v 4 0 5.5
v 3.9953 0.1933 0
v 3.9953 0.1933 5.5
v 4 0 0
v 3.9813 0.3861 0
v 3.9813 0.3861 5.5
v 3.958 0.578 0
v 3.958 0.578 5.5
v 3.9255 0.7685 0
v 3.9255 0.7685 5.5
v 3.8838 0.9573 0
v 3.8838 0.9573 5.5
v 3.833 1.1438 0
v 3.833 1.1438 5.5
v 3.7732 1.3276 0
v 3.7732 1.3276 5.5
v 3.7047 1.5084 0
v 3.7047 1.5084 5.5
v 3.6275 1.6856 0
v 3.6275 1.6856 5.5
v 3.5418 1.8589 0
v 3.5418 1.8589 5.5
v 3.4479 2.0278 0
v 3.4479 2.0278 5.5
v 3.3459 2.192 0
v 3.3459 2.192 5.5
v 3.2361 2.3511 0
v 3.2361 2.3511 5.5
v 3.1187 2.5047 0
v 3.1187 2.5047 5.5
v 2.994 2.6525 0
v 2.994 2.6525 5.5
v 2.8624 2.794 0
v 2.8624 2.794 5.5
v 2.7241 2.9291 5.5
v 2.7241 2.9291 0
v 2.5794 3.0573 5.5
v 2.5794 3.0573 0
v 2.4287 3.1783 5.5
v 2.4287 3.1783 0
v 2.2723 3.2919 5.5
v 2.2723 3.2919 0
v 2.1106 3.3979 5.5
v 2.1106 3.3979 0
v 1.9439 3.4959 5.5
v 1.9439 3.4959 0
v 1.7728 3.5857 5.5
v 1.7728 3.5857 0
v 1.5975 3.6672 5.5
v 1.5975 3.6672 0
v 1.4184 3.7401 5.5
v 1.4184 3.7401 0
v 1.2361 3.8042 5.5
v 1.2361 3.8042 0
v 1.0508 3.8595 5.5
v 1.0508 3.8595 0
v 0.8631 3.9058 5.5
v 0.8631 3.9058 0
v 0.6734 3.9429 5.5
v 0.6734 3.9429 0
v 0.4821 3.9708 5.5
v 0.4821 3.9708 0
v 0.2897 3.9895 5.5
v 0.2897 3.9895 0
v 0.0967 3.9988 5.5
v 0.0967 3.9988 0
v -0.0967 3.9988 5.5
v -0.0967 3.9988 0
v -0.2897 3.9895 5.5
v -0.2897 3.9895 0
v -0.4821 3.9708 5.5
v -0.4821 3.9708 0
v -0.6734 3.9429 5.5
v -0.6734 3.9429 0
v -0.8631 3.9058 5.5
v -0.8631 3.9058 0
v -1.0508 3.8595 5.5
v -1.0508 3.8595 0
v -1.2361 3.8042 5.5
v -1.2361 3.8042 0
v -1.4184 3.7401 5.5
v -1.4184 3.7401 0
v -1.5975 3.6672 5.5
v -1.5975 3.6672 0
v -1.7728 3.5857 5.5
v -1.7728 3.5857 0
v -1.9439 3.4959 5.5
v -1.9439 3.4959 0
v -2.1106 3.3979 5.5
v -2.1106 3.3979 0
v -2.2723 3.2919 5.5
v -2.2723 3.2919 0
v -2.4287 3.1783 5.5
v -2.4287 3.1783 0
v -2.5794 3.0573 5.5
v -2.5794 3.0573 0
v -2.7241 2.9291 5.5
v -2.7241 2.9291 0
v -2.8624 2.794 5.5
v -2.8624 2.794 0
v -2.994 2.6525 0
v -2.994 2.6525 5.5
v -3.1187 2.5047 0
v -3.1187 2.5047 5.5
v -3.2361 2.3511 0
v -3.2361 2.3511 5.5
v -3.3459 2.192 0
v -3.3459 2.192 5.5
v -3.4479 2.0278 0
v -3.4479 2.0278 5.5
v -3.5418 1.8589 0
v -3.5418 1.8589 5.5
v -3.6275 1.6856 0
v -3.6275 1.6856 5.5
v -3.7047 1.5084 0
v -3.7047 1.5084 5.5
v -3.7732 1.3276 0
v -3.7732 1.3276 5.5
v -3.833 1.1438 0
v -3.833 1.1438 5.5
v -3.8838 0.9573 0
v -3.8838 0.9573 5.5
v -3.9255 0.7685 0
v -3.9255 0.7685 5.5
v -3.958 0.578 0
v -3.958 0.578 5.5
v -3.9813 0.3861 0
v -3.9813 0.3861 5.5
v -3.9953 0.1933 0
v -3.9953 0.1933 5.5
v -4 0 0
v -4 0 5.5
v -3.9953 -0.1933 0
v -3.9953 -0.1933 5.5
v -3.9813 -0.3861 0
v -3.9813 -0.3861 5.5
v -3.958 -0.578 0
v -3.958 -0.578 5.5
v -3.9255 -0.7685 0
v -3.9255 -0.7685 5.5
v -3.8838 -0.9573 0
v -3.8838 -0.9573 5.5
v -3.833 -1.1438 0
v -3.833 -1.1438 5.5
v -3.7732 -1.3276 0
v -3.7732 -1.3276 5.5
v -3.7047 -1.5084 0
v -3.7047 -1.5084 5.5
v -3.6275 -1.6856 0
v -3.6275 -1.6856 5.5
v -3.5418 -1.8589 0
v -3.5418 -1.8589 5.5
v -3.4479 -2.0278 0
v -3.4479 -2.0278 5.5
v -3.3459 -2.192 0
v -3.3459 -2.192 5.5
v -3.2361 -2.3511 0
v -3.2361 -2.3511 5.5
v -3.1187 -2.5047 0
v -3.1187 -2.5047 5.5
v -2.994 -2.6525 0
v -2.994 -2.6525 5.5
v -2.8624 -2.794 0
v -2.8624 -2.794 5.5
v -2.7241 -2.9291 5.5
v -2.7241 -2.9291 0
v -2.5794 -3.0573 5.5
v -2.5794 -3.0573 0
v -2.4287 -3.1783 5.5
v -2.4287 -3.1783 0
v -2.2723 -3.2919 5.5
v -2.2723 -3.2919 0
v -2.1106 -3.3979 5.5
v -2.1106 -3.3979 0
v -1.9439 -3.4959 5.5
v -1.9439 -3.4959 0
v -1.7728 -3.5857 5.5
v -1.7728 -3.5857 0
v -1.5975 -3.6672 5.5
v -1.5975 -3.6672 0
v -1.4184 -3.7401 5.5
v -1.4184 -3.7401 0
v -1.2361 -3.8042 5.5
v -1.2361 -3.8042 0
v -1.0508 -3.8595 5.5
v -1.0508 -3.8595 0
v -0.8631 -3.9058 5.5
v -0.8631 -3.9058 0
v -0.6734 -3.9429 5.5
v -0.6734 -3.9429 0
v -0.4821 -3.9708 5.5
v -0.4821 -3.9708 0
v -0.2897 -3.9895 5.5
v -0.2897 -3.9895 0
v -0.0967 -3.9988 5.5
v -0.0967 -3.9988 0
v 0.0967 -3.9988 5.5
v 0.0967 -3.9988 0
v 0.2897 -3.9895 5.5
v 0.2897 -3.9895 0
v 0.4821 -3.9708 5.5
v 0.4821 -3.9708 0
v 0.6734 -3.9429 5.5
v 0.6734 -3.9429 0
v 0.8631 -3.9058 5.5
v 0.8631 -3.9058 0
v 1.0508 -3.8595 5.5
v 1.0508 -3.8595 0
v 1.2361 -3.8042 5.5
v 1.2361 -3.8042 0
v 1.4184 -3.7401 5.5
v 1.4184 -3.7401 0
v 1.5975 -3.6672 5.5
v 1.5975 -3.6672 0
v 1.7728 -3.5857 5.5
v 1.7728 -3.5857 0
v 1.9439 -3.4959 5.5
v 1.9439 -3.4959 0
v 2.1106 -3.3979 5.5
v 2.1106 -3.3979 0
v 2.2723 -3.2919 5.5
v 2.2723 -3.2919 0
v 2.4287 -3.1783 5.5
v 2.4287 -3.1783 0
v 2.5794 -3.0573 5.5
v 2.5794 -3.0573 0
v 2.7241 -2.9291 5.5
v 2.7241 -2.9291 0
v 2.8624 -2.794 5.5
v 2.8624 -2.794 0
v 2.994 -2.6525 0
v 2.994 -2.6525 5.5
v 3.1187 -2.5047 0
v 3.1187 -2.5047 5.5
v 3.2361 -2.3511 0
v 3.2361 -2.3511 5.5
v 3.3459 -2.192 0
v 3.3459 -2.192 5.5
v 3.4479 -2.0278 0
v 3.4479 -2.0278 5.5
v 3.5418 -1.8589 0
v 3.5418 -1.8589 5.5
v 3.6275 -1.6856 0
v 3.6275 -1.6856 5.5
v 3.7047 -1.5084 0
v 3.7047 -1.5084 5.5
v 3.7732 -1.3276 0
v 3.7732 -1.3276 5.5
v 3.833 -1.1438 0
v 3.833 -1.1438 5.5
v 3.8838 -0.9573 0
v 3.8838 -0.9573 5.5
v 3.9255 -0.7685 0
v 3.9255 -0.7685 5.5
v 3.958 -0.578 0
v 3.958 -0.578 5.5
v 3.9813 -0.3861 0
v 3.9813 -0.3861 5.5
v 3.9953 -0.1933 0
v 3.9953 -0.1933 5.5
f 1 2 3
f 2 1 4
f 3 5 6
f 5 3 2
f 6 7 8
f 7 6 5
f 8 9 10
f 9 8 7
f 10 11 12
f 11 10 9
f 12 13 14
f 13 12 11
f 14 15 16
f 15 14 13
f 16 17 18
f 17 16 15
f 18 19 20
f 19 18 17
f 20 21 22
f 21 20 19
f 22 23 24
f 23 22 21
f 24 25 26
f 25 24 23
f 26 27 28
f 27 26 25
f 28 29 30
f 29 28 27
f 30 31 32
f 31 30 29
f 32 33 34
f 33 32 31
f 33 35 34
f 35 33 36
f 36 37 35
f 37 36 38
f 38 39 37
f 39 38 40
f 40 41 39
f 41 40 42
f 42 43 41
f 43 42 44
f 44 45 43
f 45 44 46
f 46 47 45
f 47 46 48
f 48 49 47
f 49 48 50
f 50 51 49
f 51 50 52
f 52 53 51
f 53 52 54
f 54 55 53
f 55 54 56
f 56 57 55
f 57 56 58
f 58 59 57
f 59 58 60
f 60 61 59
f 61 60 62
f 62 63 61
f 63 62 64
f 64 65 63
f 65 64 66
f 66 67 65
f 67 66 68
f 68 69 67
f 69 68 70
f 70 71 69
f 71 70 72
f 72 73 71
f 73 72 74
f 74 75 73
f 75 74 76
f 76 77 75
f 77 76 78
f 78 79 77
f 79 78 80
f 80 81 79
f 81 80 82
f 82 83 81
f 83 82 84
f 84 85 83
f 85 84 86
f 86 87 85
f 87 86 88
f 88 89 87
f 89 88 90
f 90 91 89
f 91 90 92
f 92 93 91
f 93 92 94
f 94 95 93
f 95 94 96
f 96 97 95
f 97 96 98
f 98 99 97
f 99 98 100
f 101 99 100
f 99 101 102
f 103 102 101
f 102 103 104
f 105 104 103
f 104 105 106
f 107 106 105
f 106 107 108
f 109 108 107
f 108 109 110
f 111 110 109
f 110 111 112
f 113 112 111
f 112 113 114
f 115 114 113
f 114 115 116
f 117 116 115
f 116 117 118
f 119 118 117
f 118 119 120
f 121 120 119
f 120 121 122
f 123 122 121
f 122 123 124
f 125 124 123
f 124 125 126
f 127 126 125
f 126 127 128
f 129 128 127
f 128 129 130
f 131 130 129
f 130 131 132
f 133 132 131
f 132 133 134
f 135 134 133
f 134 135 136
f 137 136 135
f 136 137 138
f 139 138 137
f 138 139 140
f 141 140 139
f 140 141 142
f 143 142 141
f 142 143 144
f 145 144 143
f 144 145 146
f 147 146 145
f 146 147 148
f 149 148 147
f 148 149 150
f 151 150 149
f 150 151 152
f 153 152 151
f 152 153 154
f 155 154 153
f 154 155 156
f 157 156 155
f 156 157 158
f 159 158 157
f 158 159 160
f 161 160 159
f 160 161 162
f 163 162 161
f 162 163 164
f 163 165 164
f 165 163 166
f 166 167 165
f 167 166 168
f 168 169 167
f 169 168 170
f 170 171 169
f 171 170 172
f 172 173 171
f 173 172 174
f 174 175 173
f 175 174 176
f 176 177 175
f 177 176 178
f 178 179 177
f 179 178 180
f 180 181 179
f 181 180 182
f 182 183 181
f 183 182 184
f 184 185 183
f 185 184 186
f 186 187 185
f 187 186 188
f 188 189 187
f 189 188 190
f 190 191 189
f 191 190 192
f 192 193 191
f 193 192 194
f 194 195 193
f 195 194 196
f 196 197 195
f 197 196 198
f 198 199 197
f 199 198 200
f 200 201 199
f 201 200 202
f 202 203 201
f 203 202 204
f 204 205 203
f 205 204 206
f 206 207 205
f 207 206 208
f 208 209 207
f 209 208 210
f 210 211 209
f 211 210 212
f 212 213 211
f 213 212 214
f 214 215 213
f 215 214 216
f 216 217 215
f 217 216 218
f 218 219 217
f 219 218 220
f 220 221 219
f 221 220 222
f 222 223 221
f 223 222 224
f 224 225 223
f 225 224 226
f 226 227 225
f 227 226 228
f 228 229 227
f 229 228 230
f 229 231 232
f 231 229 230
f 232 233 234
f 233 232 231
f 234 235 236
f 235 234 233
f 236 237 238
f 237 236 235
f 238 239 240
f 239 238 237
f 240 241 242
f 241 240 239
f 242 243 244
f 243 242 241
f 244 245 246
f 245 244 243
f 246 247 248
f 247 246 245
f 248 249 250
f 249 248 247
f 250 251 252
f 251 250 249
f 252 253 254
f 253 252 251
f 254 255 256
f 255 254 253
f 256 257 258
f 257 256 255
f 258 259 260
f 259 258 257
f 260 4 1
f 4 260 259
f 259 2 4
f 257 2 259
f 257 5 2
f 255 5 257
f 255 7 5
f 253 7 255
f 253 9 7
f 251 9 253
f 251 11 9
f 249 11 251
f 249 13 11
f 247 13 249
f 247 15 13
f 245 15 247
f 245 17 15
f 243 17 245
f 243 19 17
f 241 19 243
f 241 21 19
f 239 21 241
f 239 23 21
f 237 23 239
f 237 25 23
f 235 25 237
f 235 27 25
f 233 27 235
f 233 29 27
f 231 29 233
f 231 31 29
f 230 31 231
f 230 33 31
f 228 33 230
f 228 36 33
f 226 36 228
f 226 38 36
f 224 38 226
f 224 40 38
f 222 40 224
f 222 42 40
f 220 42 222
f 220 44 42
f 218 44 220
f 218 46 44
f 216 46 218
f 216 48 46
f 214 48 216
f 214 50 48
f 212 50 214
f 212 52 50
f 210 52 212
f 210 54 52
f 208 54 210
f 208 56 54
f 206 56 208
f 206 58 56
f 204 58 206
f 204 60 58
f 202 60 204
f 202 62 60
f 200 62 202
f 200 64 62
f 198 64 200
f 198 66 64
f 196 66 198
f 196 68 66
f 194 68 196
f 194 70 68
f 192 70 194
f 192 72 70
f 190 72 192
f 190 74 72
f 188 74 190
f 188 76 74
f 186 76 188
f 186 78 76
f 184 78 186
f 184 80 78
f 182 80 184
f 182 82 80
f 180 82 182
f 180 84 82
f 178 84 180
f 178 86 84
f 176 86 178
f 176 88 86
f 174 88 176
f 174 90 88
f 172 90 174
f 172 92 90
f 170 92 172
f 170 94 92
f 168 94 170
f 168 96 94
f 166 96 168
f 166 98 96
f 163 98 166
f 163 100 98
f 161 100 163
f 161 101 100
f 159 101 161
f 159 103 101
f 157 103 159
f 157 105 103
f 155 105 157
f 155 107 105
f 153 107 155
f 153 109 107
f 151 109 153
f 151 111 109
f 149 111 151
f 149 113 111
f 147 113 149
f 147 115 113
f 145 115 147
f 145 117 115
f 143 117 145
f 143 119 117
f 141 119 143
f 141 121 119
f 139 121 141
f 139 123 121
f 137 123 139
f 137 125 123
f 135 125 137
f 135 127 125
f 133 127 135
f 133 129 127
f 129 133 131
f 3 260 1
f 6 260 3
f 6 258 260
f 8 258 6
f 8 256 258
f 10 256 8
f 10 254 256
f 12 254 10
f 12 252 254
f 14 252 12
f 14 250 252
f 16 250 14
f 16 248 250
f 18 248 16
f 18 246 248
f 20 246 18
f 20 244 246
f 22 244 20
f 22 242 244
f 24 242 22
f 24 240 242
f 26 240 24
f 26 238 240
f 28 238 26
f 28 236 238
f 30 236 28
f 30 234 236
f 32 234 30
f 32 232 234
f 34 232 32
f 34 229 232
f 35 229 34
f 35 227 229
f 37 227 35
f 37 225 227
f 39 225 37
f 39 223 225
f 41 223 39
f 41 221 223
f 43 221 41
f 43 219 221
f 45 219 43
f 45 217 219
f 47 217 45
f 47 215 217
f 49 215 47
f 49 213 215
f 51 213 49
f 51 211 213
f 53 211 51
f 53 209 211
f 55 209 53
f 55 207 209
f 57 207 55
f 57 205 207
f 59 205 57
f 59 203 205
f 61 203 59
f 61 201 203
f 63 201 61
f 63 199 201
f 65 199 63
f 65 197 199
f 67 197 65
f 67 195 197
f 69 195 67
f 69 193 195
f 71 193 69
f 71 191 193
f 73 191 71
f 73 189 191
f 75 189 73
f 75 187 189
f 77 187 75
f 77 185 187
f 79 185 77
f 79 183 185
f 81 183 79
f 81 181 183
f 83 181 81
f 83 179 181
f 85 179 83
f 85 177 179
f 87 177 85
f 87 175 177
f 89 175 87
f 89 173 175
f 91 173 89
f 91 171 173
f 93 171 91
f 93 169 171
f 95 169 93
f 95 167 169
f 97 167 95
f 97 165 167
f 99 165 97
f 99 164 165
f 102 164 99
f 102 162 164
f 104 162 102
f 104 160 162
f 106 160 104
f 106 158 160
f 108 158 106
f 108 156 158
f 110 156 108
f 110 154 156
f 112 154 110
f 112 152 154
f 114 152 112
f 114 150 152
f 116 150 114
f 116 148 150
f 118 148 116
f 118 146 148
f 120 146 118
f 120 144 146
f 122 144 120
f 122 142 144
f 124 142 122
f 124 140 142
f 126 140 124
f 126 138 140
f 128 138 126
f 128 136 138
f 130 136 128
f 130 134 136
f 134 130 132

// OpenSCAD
$fn=130;

D_sock=8;    //Sockeldurchmesser

H_sock=5.5;   //Sockelhöhe


//Sockel
H=H_sock-6;
color("SlateGray")
//color("WhiteSmoke")

cylinder (h=H_sock, d=D_sock);

  
